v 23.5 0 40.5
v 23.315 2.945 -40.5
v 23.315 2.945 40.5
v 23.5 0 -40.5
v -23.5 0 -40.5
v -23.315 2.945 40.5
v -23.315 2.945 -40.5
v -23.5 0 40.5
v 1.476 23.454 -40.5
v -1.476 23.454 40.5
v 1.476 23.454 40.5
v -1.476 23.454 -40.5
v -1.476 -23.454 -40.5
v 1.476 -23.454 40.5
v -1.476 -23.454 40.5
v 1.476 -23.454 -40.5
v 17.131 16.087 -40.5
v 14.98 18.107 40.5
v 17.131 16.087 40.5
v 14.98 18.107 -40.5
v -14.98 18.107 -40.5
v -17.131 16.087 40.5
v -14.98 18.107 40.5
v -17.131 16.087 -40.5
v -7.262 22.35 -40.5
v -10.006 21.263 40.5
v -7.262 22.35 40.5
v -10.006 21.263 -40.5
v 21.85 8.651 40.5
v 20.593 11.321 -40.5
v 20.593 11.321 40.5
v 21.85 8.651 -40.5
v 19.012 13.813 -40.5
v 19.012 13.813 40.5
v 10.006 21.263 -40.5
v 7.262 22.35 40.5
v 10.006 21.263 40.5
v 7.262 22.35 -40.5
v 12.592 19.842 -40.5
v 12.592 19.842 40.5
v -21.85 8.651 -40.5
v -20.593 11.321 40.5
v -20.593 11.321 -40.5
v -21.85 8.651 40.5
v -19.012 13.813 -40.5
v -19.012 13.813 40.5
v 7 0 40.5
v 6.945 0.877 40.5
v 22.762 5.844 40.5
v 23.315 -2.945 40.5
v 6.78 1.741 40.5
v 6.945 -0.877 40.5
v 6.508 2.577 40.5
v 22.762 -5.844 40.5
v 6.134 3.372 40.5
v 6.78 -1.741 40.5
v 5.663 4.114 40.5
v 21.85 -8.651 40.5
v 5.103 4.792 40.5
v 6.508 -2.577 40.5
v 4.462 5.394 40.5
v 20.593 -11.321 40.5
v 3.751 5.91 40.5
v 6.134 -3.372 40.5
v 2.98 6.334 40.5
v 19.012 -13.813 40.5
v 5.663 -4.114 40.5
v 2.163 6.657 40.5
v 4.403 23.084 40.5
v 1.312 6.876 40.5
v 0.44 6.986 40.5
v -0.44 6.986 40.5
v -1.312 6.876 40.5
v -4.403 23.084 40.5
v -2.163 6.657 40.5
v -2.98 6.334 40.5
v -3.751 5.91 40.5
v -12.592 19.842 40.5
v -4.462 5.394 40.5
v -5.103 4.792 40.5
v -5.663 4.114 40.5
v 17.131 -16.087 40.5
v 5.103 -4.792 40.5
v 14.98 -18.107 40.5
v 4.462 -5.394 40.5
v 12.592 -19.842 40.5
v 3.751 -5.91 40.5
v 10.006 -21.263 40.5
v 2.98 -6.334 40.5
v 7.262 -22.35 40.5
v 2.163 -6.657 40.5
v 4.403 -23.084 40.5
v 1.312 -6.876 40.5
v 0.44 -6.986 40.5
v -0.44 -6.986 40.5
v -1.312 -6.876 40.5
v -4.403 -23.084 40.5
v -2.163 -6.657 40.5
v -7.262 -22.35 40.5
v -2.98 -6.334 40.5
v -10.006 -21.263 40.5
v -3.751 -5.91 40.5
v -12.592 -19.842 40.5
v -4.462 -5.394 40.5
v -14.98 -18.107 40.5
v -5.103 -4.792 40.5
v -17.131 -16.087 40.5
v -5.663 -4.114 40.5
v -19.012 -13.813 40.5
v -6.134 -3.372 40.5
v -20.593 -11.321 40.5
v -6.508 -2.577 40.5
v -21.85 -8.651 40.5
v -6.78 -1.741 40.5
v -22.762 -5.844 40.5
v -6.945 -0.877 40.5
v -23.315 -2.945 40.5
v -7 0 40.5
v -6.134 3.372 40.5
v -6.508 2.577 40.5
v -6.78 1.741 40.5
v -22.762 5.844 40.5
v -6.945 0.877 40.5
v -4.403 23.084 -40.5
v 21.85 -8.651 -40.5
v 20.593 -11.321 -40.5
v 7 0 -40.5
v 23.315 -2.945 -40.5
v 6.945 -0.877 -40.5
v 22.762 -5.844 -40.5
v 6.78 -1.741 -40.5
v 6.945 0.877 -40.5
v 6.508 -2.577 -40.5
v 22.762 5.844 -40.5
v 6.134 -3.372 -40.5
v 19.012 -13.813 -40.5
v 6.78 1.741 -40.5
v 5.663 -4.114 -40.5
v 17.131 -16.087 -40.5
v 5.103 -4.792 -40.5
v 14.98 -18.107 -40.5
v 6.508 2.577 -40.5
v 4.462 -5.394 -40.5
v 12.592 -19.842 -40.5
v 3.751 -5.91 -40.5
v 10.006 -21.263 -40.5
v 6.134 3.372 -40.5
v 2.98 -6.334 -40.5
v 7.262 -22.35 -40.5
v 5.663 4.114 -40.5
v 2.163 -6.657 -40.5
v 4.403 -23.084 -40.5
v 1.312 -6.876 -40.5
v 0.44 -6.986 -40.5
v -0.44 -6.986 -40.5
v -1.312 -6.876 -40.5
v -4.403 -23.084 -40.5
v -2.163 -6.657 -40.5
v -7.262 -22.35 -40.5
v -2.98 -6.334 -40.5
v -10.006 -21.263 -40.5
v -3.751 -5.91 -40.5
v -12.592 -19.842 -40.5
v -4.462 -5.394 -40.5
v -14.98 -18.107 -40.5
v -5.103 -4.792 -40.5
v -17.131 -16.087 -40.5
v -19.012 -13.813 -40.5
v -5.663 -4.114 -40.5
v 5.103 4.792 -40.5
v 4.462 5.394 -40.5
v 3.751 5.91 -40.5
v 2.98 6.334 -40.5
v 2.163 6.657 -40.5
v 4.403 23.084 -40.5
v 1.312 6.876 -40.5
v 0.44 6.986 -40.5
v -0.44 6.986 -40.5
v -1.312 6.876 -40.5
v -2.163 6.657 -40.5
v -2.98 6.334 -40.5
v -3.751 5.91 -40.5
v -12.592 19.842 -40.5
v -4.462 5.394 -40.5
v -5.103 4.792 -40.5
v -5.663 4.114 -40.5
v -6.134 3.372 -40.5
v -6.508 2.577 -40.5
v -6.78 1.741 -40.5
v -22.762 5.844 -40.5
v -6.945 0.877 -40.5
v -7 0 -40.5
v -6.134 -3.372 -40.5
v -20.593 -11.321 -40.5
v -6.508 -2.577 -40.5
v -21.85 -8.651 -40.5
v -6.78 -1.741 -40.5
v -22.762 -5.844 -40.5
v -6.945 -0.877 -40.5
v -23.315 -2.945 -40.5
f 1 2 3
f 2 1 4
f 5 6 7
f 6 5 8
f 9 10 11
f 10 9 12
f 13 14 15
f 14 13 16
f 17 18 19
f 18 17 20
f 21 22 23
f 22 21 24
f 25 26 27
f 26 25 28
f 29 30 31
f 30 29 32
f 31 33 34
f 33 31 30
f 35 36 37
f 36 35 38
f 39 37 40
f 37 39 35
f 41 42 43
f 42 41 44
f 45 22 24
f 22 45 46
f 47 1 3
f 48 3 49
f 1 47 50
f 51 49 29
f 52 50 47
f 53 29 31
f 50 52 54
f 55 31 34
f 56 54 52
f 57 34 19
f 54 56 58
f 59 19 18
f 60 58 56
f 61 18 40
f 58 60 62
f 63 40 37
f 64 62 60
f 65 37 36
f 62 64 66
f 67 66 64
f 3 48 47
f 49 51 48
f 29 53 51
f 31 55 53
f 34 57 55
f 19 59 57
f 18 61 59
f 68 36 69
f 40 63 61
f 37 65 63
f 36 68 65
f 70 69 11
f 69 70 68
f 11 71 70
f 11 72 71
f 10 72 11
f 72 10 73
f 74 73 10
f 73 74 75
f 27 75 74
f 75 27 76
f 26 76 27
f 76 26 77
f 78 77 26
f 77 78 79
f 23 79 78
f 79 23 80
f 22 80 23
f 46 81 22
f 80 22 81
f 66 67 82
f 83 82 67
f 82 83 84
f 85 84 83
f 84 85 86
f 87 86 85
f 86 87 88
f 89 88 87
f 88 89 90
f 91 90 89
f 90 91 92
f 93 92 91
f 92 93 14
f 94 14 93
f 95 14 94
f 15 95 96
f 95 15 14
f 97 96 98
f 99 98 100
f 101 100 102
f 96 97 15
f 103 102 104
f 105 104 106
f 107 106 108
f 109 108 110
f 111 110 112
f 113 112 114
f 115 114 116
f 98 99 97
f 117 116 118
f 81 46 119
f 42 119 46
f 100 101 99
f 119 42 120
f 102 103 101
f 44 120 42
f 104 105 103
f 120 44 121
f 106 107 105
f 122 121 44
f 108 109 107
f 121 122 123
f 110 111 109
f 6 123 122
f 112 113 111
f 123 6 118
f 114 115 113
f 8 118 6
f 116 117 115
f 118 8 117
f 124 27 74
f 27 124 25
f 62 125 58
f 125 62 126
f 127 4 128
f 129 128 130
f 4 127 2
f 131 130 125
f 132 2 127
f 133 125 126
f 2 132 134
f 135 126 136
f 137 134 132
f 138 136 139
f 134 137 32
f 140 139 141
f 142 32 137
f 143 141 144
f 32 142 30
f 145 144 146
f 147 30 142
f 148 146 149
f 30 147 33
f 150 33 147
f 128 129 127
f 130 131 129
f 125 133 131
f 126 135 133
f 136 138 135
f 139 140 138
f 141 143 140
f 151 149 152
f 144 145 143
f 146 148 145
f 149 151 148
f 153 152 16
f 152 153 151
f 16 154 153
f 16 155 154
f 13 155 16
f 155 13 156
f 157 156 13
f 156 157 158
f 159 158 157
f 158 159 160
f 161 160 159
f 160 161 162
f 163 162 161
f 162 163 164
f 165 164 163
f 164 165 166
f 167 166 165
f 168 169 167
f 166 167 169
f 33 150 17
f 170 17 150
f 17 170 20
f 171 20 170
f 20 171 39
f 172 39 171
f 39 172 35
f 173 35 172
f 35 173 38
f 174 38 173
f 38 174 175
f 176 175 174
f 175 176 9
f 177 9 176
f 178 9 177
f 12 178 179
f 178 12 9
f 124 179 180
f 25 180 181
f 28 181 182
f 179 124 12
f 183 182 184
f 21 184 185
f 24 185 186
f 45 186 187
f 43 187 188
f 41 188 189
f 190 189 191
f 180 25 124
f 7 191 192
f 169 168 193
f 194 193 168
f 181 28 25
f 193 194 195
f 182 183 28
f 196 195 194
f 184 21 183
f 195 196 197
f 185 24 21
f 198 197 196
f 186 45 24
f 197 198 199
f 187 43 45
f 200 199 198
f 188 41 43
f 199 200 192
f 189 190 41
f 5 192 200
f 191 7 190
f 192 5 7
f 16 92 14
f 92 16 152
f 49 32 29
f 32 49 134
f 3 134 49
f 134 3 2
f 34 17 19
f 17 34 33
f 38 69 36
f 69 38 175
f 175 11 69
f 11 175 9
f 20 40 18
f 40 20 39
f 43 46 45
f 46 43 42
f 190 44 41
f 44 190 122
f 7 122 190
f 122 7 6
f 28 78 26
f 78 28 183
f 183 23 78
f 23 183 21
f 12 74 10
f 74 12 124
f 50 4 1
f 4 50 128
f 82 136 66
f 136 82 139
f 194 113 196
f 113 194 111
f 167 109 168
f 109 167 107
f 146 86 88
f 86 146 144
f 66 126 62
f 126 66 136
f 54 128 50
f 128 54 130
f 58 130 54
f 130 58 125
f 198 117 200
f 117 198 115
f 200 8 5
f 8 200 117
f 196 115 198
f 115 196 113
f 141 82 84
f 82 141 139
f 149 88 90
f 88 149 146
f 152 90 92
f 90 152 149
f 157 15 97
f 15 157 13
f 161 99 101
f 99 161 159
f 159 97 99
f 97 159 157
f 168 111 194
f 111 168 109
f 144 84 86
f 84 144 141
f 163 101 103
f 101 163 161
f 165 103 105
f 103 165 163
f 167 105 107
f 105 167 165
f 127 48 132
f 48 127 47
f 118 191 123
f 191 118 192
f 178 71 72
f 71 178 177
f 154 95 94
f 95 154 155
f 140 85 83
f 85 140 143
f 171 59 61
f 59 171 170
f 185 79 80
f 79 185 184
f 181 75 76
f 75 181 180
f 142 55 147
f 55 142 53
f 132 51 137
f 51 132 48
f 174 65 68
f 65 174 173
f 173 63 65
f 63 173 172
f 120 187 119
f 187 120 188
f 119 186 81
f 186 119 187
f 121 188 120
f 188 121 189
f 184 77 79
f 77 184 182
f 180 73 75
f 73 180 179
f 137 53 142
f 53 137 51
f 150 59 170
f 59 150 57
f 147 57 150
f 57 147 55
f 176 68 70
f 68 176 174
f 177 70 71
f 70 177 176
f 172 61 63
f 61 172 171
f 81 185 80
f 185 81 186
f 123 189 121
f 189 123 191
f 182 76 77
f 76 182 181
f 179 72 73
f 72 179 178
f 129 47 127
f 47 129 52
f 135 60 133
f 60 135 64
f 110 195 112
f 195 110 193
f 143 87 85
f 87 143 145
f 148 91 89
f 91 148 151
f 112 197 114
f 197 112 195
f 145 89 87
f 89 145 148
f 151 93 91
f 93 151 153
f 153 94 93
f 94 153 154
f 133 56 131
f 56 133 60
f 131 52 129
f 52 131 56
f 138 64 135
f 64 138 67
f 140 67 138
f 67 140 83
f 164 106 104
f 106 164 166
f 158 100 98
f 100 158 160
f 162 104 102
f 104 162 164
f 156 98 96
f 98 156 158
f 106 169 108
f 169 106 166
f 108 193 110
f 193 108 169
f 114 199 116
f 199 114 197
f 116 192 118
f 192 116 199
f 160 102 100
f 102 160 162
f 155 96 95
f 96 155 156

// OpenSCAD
$fn = 50;


difference() {
	union() {
		translate(v = [0, 0, -40.5000000000]) {
			cylinder(h = 81, r = 23.5000000000);
		}
	}
	union() {
		translate(v = [0, 0, -100.0000000000]) {
			cylinder(h = 200, r = 7);
		}
	}
}
